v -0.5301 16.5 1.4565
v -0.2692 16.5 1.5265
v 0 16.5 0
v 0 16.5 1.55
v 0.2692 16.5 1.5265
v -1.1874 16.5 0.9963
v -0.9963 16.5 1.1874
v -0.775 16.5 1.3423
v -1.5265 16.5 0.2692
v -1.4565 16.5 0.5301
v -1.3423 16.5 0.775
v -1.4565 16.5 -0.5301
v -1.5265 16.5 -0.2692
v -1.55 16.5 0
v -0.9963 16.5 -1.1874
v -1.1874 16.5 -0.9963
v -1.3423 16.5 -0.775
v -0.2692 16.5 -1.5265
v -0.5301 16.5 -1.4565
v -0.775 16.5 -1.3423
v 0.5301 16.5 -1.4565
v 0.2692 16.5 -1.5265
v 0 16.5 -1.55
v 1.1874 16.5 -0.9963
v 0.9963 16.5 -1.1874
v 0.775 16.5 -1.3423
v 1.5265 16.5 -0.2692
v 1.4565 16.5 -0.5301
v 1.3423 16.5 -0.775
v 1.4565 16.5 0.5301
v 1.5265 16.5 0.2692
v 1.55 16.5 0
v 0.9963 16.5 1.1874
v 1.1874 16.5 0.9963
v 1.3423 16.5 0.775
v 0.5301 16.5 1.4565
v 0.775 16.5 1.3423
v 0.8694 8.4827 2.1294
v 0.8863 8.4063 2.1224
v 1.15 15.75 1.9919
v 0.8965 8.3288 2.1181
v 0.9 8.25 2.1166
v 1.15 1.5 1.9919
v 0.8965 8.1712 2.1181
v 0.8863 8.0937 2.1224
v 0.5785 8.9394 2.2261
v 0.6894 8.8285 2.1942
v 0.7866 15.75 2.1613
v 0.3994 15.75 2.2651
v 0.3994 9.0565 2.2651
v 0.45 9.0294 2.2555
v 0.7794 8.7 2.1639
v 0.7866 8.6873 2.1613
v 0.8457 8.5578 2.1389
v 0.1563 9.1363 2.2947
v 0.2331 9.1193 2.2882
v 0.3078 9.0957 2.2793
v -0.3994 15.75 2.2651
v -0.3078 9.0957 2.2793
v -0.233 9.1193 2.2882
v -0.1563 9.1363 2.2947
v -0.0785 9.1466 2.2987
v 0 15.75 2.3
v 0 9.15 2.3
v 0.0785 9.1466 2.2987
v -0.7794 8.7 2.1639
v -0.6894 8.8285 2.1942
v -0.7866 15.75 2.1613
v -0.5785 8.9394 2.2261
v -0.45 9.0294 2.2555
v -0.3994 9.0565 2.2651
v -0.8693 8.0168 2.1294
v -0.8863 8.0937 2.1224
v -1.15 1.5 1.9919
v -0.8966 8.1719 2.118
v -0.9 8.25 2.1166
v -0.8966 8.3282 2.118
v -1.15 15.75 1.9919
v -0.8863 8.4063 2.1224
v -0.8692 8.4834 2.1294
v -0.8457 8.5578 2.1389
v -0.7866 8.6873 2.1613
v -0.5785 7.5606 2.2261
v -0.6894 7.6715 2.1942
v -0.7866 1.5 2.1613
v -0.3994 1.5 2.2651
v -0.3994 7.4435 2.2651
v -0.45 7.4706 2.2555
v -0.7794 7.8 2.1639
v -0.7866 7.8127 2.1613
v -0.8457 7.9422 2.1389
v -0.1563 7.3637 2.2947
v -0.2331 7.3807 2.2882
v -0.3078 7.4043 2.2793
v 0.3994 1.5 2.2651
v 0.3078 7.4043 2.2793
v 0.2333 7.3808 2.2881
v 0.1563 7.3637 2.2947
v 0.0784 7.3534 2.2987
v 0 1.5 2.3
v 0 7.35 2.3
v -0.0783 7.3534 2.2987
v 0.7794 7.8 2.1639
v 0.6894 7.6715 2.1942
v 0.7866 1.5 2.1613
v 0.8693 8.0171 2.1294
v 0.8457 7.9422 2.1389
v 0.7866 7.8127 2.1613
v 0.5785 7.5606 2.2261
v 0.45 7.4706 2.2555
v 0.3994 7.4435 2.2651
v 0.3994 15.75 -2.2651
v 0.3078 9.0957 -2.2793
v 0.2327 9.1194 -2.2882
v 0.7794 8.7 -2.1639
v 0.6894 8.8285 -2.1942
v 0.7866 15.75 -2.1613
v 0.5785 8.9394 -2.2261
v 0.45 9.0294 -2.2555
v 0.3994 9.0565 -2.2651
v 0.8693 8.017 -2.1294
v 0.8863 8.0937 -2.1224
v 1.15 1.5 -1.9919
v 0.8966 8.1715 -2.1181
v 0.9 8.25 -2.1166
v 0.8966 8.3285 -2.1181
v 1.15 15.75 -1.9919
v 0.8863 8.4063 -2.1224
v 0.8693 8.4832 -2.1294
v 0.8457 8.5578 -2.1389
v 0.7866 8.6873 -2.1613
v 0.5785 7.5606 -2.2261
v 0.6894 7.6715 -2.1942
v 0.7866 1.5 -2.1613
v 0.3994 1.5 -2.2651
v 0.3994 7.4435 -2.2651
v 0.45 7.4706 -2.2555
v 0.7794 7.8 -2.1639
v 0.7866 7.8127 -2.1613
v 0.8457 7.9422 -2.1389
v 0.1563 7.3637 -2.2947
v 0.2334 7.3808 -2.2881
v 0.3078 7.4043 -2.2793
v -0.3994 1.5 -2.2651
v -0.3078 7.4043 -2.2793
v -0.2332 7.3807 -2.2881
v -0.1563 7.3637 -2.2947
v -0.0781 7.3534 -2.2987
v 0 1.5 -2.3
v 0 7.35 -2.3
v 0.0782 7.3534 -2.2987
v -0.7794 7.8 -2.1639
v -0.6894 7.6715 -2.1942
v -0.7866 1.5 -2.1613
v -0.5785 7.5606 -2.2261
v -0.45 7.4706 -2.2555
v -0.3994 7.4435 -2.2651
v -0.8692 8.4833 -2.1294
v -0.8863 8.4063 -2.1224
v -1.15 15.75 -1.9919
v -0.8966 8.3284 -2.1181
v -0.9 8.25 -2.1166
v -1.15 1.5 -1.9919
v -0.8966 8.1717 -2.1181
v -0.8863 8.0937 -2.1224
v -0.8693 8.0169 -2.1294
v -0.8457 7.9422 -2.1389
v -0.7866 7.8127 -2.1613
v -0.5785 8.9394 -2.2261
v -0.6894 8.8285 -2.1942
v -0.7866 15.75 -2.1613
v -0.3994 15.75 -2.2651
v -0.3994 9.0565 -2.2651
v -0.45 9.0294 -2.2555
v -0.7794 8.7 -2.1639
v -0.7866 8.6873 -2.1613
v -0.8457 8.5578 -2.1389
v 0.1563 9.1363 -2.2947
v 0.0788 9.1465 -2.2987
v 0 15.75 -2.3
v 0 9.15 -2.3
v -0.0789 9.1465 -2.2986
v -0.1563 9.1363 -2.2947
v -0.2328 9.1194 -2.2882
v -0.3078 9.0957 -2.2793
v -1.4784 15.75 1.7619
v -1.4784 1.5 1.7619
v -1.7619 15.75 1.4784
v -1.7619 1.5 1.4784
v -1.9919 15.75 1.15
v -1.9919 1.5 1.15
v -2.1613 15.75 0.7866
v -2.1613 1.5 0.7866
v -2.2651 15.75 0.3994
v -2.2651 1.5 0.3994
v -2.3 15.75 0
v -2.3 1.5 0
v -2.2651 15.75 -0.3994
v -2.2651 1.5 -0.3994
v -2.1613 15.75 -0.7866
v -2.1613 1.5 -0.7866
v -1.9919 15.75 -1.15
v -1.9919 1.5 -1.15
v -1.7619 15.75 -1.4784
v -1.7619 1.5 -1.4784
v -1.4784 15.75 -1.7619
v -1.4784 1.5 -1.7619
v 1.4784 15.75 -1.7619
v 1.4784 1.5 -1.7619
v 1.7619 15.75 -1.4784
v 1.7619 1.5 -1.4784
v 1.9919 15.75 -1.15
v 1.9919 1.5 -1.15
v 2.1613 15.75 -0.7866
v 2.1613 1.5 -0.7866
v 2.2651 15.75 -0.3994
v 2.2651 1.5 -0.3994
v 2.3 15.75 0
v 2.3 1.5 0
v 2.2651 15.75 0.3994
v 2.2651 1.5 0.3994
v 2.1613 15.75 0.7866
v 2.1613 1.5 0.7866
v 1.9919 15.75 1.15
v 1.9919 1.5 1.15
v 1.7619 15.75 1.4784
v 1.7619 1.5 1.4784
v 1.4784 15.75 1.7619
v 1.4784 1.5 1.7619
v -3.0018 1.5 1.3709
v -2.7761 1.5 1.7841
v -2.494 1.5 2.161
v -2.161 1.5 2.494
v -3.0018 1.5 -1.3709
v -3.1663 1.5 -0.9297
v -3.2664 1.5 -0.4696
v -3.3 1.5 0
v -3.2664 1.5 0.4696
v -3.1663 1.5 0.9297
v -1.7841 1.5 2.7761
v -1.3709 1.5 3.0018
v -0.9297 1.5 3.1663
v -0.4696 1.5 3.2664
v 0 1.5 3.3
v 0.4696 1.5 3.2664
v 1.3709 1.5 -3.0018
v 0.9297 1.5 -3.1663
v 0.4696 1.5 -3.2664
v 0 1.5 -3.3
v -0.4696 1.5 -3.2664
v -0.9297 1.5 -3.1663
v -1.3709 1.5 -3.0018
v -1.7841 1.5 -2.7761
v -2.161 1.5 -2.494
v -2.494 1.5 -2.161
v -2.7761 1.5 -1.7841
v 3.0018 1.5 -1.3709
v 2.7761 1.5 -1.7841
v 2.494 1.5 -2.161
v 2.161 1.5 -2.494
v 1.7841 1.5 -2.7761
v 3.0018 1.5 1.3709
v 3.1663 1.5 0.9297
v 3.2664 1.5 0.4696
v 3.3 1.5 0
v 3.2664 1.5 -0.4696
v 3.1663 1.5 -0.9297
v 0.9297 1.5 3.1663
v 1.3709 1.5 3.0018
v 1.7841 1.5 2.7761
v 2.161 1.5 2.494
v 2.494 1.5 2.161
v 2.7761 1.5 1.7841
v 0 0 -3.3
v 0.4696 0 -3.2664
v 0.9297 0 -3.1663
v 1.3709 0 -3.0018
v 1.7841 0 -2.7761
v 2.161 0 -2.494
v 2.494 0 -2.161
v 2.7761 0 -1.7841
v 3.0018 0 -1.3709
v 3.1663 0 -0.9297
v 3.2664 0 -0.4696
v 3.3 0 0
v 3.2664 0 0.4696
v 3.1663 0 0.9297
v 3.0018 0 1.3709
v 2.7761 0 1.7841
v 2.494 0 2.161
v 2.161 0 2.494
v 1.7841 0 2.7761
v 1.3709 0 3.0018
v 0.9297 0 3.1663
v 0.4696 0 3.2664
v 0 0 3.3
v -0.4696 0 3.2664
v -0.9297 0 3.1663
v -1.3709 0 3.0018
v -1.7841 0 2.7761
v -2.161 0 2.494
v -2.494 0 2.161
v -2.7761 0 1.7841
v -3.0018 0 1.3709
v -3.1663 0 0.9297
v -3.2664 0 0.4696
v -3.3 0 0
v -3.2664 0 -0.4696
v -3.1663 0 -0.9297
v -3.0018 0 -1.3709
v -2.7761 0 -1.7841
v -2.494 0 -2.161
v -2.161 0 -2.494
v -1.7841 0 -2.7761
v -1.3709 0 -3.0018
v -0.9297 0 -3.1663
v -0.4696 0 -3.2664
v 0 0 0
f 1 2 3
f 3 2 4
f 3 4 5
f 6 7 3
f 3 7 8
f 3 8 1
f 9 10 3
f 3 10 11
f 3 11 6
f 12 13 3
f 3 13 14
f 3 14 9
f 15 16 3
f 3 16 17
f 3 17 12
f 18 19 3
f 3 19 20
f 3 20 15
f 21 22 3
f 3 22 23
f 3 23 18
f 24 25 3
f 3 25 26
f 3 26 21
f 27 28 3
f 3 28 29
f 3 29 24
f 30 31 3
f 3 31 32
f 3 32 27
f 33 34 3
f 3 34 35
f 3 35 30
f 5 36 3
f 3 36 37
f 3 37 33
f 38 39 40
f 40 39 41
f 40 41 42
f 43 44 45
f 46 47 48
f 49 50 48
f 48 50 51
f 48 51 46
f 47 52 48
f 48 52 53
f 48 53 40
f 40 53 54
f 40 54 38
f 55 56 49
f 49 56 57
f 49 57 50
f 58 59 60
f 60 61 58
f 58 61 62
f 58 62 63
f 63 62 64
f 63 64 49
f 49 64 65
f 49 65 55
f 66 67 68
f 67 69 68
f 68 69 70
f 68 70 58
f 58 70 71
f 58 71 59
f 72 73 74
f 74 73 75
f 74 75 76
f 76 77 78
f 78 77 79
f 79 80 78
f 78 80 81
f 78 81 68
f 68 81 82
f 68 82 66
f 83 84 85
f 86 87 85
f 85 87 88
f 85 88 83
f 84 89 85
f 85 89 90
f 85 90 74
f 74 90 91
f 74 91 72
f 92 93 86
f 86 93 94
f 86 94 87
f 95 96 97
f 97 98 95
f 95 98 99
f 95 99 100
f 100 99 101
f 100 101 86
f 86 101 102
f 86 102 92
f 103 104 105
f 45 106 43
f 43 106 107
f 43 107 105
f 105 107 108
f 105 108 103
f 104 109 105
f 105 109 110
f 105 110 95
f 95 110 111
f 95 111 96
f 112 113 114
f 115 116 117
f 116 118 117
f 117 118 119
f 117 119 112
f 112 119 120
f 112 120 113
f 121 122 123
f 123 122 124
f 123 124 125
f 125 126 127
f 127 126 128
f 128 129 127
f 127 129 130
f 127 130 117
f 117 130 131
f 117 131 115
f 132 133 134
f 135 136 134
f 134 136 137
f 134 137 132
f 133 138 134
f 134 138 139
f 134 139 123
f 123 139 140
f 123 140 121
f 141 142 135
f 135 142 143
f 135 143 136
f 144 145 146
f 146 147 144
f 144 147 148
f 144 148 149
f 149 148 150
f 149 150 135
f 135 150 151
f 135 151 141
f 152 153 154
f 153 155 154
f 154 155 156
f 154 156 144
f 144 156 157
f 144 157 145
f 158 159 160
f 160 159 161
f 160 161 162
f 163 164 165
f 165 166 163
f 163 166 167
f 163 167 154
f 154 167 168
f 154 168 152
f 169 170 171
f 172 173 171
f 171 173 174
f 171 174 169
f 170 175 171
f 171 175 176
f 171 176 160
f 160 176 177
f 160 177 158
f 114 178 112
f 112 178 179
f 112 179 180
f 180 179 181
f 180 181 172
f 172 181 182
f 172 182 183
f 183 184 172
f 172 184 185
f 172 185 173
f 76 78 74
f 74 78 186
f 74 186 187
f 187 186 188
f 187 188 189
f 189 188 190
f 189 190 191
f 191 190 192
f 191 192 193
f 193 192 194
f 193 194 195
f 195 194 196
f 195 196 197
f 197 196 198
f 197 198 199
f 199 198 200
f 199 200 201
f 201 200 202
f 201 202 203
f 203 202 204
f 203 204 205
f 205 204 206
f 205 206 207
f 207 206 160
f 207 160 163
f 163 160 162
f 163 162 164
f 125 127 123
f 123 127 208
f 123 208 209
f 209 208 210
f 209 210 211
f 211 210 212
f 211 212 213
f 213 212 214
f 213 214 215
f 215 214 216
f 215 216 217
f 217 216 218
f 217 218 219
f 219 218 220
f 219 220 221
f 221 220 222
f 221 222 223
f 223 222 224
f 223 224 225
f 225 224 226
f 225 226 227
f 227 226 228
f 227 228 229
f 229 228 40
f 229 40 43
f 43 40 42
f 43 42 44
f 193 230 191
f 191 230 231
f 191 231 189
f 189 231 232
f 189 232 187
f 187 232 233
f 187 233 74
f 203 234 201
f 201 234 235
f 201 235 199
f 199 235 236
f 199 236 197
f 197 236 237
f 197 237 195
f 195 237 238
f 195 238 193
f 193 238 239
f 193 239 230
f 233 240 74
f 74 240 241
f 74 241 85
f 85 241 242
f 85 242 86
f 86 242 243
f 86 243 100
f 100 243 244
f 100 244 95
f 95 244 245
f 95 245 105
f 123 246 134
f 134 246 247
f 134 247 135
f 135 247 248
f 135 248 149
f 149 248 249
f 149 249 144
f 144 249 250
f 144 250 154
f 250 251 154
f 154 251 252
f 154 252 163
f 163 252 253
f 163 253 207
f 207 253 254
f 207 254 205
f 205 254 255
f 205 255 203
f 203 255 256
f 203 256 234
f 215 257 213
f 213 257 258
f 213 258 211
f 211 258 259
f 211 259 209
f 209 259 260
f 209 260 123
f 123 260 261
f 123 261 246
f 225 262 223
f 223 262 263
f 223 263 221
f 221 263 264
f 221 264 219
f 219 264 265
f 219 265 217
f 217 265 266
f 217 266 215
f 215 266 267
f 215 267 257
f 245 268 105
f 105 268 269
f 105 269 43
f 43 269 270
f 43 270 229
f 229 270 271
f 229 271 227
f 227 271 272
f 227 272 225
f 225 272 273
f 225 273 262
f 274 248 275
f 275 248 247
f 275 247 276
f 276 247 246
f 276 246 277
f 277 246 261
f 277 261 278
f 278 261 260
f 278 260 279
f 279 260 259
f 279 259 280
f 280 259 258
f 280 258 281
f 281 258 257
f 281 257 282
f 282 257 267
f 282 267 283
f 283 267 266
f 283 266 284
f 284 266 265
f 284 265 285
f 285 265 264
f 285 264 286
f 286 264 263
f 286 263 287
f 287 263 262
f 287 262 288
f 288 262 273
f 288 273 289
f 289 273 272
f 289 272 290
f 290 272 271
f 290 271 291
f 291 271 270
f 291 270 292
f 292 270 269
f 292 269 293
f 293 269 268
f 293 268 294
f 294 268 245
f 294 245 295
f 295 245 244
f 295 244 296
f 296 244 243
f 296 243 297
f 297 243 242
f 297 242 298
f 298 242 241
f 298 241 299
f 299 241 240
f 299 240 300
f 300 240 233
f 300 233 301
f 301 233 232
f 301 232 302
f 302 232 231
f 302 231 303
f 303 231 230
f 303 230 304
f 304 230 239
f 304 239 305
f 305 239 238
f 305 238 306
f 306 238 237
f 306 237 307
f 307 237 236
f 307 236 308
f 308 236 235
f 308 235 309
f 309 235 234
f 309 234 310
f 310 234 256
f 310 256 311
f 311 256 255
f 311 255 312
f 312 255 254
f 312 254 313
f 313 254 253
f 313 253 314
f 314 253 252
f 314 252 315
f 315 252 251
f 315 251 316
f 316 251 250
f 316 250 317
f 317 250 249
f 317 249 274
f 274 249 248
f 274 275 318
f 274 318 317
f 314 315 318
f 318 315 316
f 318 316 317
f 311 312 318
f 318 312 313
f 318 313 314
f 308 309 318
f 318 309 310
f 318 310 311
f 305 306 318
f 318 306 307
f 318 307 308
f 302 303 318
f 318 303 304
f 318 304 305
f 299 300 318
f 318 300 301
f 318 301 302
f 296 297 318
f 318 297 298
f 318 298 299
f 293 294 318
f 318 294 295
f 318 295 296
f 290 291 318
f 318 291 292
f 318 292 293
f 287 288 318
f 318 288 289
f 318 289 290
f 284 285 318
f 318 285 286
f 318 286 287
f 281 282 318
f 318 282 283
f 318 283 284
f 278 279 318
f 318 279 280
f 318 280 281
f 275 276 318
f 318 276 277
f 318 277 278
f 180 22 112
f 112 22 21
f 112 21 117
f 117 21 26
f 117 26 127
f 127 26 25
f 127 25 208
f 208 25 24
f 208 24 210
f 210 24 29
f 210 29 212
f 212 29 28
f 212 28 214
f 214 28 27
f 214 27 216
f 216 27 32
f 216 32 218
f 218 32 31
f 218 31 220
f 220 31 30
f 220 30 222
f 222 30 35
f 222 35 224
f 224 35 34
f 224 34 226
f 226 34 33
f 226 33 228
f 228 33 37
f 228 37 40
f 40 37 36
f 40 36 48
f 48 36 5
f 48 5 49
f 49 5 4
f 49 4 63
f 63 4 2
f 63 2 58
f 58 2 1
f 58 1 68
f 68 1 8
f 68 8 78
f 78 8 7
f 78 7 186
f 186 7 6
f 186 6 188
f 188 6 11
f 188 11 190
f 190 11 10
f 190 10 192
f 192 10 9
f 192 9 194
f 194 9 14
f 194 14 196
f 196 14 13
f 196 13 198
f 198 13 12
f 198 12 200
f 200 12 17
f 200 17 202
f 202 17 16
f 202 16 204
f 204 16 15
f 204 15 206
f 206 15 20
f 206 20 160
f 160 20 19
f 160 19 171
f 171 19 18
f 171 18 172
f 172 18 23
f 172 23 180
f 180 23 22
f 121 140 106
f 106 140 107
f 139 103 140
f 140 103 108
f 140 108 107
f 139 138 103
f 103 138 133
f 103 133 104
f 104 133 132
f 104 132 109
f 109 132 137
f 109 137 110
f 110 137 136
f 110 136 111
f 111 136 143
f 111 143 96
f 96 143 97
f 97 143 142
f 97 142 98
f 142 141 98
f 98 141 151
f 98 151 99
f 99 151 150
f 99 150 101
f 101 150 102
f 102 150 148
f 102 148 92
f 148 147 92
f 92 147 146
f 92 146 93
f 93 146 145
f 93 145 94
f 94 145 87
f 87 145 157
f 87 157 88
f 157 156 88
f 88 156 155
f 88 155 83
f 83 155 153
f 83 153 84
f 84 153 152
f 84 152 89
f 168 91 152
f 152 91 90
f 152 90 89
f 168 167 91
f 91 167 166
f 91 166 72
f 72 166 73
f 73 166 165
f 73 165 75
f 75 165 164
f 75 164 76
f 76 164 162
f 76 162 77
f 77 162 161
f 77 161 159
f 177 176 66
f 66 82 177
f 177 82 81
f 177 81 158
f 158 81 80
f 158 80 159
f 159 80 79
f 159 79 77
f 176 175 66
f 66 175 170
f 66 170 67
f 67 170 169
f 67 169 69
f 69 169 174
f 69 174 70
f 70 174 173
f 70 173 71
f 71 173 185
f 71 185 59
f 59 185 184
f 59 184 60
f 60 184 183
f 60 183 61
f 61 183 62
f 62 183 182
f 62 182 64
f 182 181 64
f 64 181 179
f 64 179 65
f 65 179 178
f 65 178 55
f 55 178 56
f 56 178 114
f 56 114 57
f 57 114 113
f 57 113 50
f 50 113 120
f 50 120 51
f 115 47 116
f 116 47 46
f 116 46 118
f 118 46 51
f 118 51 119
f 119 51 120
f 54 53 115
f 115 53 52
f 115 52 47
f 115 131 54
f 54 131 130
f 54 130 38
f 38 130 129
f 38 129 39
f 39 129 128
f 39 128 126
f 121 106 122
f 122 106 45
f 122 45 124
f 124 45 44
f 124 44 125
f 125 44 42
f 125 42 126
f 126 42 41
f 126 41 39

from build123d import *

# Parameters (mm, degrees)
CHAMFER1_SIZE           = 0.75
SKETCH2_R               = 0.9
CUT_EXTRUDE1_DEPTH      = 4.3
CUT_EXTRUDE1_DEPTH_BACK = 4.3


with BuildPart() as part:
    # Sketch1 → Revolve1 (revolve)
    with BuildSketch(Plane.XY):
        Polygon((0, 16.5), (2.3, 16.5), (2.3, 1.5), (3.3, 1.5), (3.3, 0), (0, 0), align=None)
    revolve(axis=Axis((0, 0, 0), (0, 1, 0)))

    # Chamfer1
    chamfer1_edges = [part.edges().sort_by_distance(p)[0] for p in [
        (-2.3, 16.5, 0),
    ]]
    chamfer(chamfer1_edges, length=CHAMFER1_SIZE)

    # Sketch2 → Cut-Extrude1 (cut, two sides)
    with BuildSketch(Plane.XY) as cut_extrude1_sk:
        with Locations((0, 8.25)):
            Circle(SKETCH2_R)
    extrude(amount=CUT_EXTRUDE1_DEPTH, mode=Mode.SUBTRACT)
    extrude(cut_extrude1_sk.sketch, amount=-CUT_EXTRUDE1_DEPTH_BACK, mode=Mode.SUBTRACT)


solid = part.part
